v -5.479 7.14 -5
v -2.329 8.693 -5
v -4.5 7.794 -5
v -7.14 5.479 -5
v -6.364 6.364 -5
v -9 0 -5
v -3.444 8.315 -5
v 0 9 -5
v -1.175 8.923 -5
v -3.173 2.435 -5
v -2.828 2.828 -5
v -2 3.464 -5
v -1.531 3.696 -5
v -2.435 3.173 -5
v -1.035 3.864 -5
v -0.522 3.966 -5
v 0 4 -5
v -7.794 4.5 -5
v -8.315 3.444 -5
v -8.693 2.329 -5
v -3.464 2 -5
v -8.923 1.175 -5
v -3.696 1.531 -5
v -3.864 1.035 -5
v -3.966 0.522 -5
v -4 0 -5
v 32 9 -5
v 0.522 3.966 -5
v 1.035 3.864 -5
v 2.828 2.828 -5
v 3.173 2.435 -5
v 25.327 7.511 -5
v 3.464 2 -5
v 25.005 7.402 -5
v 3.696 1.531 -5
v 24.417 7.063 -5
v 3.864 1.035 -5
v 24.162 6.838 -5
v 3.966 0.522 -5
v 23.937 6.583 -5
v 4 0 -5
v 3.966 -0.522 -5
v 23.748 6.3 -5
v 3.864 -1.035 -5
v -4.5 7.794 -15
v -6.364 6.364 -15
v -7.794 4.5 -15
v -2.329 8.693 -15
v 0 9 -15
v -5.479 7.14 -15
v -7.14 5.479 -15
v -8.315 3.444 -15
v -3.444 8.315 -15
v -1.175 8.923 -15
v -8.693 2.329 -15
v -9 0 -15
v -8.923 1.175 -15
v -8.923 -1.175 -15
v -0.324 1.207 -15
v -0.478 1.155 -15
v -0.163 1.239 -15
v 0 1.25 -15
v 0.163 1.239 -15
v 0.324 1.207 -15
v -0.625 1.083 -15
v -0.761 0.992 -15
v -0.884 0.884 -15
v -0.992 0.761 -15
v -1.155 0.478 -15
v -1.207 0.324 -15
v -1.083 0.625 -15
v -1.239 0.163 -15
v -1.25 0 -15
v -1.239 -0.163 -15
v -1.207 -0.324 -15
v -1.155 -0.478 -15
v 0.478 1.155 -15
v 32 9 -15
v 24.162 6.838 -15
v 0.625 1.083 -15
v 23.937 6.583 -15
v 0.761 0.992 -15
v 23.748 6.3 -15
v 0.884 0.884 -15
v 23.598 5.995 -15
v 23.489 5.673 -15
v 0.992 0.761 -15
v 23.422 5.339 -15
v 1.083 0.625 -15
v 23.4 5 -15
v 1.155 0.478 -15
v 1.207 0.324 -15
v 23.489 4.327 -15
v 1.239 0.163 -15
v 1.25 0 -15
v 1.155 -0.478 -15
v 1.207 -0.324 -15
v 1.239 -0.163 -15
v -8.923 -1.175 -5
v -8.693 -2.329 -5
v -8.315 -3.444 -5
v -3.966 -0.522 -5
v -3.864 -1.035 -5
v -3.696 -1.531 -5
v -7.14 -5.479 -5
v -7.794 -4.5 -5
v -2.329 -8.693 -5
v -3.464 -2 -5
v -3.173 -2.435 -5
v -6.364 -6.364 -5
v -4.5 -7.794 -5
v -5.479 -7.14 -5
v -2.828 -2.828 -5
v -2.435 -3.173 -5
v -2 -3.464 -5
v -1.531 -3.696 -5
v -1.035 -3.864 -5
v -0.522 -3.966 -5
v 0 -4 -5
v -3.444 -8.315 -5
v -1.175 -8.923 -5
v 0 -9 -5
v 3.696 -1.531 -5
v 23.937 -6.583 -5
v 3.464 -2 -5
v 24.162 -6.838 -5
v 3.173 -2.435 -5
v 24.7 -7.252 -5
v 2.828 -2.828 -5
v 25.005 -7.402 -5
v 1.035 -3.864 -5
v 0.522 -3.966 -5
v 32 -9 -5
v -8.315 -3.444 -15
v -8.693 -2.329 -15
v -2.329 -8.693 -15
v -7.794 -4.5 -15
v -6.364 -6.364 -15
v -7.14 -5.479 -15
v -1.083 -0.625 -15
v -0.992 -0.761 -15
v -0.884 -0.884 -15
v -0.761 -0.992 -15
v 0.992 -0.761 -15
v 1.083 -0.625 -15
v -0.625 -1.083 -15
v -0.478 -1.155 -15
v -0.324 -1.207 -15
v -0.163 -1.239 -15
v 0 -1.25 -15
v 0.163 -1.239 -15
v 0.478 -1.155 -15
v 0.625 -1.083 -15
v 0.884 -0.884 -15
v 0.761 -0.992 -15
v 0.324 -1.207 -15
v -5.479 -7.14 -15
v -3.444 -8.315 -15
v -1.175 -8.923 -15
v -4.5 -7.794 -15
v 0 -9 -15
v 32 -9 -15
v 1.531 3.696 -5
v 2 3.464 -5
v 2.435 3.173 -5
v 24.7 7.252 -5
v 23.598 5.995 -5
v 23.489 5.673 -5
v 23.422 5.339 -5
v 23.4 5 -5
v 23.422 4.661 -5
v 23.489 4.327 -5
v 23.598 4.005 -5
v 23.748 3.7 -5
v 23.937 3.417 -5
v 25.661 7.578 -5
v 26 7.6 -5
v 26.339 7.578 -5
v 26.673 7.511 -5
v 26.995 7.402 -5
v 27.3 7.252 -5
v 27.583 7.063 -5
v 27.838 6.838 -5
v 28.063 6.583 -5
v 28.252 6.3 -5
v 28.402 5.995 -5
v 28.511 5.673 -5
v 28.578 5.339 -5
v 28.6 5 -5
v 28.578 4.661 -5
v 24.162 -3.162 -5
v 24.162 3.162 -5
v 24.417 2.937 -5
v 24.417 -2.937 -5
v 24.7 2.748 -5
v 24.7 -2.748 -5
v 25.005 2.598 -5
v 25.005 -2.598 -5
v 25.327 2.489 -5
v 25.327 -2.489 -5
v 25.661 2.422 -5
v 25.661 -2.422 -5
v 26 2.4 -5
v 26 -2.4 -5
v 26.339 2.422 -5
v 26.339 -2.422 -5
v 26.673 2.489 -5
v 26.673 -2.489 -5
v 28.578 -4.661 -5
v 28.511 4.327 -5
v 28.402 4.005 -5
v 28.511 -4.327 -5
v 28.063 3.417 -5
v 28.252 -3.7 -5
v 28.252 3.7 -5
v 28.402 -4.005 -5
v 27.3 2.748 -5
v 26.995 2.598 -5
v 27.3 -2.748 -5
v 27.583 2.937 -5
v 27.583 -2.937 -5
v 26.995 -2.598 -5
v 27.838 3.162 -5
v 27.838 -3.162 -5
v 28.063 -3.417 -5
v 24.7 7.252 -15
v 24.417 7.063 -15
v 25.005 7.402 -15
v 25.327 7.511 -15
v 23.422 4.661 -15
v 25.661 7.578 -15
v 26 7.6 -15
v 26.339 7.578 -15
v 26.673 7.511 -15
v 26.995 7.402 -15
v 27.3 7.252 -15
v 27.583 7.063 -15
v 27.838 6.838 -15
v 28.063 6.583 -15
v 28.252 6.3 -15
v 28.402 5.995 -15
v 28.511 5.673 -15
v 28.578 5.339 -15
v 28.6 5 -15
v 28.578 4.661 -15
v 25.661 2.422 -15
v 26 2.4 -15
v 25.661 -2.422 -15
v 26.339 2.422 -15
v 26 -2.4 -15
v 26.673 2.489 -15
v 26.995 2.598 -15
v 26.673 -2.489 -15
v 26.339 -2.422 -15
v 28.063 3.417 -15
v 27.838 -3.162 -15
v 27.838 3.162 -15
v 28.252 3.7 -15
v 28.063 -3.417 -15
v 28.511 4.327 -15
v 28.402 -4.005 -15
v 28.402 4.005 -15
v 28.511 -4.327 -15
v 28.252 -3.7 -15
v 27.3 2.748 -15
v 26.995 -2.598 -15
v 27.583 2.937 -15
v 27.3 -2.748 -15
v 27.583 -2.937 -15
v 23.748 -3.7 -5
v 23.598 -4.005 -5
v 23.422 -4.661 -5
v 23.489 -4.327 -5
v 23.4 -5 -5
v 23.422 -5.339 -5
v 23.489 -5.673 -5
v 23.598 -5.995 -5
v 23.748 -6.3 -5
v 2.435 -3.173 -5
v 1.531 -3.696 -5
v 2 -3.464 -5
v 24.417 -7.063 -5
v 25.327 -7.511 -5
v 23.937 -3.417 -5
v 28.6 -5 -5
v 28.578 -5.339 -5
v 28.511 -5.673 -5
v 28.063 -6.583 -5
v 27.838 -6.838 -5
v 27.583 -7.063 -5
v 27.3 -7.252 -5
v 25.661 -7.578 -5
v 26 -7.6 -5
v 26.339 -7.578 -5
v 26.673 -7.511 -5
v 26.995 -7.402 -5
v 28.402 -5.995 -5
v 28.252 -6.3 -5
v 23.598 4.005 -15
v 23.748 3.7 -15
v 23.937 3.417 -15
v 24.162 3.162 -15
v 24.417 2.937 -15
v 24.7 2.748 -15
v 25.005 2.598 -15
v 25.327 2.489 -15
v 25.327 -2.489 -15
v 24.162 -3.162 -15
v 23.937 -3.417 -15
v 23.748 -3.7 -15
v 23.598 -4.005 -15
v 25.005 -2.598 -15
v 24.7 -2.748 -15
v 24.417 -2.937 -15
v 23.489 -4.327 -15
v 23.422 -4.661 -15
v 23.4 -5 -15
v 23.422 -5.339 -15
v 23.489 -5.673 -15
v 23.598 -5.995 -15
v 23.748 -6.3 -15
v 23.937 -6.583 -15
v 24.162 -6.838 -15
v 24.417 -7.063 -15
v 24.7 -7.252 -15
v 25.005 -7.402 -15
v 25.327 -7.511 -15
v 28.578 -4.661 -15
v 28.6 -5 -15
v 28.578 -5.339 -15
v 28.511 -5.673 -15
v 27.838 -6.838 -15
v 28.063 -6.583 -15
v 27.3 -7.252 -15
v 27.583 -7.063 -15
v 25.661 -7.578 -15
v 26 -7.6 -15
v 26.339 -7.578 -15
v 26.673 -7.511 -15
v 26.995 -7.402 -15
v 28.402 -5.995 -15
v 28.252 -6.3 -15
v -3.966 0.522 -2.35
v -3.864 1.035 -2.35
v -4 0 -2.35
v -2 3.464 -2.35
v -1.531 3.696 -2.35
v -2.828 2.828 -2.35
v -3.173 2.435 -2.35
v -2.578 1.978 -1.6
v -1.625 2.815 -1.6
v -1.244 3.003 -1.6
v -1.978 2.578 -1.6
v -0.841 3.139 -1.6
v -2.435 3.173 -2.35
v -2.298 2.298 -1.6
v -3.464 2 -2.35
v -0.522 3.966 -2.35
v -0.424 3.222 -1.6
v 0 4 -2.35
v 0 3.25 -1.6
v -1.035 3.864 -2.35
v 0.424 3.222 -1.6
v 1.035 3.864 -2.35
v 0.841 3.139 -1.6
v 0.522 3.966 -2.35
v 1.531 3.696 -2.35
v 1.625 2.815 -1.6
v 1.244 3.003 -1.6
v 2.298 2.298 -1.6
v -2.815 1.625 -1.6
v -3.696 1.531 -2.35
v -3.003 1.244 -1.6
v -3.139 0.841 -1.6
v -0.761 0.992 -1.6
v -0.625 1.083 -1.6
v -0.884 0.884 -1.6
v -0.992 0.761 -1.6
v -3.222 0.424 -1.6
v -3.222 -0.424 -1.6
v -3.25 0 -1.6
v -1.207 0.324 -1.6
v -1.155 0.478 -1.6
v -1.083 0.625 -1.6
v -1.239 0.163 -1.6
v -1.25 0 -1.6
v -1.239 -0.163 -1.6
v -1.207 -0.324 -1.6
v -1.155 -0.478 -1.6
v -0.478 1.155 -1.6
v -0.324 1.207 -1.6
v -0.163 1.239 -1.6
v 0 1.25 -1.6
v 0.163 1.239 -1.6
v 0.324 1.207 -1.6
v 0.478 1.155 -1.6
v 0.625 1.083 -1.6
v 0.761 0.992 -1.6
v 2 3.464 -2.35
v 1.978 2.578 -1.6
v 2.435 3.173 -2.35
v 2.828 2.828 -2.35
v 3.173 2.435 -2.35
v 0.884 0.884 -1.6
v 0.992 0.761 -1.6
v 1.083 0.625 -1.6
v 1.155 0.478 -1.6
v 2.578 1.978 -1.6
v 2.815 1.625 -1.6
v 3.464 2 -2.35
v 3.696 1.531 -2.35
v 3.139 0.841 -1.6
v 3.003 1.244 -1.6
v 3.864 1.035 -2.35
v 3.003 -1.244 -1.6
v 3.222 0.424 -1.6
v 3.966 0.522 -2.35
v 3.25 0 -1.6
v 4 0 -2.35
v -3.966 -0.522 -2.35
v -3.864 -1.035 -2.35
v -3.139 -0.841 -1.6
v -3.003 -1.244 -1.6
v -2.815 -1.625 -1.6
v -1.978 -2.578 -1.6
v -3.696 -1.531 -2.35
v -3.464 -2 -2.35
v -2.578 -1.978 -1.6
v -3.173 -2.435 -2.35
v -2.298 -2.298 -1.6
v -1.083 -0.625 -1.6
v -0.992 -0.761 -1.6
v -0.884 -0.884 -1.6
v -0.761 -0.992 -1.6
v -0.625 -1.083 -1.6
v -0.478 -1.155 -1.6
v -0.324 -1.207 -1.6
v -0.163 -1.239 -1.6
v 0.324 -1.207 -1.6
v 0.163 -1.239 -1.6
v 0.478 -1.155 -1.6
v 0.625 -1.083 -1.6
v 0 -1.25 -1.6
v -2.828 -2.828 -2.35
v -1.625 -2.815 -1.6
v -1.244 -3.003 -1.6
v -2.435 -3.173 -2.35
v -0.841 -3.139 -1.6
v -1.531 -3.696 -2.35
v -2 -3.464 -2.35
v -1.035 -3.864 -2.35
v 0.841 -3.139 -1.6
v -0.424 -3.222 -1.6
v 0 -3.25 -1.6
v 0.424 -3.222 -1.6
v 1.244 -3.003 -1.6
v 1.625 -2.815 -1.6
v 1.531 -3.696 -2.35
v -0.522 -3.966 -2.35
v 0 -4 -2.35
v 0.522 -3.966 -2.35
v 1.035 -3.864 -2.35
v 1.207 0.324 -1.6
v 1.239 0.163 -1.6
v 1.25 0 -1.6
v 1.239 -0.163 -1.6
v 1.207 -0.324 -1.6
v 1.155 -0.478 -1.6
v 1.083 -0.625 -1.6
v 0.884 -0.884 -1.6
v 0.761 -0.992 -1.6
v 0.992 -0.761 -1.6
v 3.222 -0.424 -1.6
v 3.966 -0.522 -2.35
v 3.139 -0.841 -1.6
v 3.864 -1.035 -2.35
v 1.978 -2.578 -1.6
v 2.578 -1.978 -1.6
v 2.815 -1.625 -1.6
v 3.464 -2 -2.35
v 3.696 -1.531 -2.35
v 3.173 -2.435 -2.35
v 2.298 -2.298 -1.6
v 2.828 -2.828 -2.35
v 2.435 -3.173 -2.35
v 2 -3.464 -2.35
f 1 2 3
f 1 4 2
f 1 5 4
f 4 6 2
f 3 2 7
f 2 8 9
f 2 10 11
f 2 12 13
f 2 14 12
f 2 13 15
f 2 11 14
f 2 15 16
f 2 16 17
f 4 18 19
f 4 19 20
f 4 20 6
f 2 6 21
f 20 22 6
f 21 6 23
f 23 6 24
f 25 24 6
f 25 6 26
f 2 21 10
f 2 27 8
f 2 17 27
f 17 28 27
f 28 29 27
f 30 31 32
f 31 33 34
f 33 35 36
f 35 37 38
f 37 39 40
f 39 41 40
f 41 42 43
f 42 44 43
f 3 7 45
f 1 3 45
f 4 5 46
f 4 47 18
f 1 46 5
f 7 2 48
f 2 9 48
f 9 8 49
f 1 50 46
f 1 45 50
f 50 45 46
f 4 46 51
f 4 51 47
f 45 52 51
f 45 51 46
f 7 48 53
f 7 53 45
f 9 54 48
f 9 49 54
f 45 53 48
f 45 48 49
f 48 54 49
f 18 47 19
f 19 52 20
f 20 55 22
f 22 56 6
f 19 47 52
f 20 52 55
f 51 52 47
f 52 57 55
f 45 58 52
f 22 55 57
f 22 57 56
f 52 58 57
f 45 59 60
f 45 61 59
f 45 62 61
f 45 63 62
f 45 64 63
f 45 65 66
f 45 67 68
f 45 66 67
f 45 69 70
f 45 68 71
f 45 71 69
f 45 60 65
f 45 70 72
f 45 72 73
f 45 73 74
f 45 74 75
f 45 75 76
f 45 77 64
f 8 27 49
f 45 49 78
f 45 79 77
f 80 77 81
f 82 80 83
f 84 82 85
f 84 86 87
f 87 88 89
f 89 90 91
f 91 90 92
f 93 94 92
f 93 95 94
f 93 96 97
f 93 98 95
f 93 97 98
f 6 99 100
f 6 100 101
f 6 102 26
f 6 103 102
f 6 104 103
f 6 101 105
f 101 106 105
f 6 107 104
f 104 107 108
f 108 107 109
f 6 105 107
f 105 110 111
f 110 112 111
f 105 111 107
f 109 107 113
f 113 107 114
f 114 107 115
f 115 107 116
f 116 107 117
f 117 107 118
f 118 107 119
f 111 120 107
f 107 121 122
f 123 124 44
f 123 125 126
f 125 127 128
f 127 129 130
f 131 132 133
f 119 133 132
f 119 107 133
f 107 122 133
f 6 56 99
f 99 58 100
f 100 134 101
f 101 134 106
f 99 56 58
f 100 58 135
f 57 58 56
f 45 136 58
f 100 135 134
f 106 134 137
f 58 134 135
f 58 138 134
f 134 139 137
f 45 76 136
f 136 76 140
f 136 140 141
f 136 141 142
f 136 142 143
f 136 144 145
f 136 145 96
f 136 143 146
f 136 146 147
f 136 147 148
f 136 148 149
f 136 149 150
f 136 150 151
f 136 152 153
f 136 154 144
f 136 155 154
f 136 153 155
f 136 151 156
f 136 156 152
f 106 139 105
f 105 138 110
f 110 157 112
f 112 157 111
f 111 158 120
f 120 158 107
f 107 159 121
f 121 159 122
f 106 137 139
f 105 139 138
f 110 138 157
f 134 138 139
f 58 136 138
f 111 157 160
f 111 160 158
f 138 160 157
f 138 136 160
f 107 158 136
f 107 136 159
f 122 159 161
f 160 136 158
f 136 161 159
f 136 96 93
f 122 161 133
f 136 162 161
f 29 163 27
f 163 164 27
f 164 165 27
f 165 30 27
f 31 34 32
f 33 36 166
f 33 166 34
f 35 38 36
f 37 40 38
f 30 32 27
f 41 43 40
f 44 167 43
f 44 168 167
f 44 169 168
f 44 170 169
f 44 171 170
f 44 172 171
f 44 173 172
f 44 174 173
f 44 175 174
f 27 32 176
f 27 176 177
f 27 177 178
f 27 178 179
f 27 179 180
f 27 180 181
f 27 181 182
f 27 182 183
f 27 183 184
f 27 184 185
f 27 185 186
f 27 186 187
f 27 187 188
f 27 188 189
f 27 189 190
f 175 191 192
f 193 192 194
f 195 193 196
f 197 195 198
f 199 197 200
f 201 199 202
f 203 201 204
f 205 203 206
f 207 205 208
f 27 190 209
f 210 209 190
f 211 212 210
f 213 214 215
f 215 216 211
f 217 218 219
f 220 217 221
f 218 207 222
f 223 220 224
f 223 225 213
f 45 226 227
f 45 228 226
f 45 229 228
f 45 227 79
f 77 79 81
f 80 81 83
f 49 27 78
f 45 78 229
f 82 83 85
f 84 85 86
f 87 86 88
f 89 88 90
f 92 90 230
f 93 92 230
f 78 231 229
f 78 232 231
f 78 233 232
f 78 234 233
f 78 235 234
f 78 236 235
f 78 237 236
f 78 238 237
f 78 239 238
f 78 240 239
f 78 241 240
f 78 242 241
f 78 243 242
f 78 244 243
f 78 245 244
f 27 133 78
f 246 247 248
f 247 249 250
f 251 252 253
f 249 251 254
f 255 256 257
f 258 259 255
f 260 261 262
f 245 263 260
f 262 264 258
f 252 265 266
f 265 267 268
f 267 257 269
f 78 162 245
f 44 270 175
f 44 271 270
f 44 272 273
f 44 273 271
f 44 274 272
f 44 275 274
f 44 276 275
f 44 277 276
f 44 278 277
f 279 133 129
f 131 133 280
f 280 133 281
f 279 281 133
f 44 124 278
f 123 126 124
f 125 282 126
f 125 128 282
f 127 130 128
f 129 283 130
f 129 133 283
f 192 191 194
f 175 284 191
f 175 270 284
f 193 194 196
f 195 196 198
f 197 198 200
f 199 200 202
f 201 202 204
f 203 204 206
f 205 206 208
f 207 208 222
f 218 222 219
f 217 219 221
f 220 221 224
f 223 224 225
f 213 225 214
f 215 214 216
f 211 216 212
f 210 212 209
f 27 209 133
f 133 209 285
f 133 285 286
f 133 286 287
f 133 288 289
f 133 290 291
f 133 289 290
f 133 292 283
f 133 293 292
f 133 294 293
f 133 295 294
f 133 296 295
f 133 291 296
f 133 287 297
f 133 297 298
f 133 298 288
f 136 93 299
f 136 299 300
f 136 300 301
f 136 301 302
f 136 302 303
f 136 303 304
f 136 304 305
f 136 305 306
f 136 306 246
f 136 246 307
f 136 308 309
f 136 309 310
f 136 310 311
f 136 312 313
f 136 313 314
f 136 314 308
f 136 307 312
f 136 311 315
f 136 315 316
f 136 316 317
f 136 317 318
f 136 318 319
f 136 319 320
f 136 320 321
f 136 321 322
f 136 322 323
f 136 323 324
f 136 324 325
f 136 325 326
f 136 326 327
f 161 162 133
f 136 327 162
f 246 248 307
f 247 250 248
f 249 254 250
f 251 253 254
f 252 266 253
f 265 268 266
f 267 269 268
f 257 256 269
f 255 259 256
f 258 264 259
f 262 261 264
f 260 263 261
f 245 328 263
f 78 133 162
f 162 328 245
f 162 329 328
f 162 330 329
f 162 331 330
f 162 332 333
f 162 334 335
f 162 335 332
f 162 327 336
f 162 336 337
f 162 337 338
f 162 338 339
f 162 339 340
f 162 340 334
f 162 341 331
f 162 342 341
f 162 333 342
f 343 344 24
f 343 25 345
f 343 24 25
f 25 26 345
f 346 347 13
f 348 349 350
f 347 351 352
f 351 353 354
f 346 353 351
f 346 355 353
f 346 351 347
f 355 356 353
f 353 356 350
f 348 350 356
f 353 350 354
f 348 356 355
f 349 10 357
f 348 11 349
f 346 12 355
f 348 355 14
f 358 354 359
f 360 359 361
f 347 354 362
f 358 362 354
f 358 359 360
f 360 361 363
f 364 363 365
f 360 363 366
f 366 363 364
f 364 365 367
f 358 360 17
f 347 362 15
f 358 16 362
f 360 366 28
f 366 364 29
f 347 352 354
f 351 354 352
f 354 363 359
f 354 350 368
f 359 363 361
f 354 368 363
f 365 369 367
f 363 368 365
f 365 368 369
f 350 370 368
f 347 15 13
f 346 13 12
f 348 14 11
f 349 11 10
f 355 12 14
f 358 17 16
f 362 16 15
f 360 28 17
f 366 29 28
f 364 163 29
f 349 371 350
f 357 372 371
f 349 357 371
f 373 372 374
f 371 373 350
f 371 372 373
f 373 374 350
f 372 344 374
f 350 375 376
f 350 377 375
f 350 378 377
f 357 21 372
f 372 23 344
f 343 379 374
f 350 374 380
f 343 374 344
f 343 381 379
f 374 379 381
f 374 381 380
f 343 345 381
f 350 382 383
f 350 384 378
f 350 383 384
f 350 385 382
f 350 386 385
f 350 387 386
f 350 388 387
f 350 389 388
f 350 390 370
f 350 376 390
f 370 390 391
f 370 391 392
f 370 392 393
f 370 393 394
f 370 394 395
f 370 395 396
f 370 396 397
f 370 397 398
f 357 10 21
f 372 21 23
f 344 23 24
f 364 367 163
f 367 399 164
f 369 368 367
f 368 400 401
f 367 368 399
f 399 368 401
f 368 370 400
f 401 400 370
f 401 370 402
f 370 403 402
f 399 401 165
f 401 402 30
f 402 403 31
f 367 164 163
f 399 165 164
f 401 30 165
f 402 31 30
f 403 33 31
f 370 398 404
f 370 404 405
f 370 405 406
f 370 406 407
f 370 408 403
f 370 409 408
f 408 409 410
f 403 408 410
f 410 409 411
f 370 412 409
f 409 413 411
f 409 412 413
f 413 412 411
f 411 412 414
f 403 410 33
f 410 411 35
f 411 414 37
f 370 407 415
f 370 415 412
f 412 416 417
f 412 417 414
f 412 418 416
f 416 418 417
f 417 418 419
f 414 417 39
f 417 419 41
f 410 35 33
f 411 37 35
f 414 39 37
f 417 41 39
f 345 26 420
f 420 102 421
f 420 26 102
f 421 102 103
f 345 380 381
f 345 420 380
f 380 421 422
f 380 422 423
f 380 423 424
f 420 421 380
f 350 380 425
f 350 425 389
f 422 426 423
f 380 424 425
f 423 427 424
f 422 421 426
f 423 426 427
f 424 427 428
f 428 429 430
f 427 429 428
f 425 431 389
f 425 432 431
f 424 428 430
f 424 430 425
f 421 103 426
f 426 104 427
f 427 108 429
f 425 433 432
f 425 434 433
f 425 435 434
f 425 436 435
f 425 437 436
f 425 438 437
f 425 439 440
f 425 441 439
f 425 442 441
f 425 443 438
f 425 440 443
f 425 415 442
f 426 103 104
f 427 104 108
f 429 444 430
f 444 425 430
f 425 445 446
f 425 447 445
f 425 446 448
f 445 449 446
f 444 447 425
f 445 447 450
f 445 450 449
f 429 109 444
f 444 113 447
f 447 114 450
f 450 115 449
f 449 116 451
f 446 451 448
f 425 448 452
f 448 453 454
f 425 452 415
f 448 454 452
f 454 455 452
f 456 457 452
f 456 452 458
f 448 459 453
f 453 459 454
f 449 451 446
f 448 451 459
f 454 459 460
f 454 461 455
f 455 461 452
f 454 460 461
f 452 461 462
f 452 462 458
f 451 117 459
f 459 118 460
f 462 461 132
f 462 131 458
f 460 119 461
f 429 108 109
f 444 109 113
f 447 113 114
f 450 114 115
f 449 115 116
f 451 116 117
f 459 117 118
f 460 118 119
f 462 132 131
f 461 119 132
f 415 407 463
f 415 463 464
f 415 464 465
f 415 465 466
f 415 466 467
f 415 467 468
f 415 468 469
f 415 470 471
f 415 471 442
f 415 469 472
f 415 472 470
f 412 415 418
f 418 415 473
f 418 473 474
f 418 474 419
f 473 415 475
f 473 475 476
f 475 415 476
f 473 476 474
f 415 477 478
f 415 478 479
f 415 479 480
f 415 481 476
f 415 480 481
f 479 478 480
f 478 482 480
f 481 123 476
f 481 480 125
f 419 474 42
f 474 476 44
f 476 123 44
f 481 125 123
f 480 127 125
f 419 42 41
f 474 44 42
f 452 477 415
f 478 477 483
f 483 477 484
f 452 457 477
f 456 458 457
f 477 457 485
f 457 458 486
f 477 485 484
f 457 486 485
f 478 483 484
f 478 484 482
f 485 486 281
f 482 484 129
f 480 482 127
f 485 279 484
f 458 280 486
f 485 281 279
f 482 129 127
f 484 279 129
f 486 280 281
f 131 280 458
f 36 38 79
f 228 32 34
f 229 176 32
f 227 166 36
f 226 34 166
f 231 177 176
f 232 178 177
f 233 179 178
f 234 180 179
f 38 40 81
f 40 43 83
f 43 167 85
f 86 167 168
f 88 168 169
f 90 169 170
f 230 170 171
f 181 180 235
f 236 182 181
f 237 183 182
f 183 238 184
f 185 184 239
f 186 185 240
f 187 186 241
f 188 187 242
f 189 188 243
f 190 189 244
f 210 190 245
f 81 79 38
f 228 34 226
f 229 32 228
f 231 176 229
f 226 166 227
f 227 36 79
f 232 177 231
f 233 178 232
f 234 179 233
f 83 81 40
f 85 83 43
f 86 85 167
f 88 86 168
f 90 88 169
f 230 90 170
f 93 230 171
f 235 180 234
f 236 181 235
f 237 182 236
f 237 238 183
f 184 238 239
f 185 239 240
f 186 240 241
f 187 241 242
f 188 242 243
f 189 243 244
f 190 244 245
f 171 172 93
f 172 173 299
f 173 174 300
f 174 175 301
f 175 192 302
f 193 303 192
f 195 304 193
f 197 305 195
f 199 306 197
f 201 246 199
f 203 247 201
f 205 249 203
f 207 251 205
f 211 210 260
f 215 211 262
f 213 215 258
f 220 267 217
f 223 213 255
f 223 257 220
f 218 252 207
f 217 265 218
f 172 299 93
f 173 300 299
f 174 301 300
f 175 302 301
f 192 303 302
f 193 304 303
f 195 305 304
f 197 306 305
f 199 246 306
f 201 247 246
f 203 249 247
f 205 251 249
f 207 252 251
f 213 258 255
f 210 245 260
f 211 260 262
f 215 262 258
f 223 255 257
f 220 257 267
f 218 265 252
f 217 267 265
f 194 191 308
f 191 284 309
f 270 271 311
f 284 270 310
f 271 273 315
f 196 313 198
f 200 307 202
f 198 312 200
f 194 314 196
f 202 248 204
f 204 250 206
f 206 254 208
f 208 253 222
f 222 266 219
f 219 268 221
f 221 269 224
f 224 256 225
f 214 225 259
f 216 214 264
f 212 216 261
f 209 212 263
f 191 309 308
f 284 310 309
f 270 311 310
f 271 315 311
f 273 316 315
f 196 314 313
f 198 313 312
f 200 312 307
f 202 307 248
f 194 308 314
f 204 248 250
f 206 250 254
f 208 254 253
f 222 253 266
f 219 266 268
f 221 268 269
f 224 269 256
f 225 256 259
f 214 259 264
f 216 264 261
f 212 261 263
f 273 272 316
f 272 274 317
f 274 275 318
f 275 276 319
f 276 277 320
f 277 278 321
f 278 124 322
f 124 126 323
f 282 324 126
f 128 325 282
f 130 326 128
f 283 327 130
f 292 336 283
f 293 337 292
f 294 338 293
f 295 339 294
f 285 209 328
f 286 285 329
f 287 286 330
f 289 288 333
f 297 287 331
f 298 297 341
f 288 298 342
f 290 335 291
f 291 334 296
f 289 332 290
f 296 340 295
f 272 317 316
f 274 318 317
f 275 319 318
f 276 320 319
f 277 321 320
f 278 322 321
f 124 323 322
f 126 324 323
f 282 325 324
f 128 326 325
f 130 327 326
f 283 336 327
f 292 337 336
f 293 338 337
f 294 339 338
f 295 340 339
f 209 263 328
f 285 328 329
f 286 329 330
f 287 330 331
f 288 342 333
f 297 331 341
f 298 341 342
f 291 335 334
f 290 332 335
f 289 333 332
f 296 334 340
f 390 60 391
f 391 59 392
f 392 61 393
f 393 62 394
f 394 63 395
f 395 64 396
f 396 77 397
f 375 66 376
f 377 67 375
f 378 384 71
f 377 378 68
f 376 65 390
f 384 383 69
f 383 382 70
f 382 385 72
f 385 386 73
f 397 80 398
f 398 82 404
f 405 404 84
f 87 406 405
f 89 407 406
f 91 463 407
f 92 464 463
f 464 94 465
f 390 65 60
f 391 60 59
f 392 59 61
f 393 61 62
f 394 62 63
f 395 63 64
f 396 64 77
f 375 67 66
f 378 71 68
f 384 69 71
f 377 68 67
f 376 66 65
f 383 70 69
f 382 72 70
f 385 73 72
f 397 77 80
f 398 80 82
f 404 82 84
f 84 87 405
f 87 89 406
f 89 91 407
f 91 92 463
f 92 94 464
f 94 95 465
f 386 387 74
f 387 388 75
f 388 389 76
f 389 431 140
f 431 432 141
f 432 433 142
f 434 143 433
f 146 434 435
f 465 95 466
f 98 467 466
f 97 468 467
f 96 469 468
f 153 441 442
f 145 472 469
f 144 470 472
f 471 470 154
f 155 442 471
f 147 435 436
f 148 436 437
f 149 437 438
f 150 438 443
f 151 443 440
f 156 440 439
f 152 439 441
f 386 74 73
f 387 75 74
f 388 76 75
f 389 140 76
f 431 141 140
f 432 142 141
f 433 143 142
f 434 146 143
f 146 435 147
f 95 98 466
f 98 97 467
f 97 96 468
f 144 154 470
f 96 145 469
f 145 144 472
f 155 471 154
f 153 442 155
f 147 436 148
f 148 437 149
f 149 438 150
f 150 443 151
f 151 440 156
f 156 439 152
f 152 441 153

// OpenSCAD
// Die arm for an M3 set-screw die (1.5 mm socket). Tap M3 through.
include <../cad/punch_rig_v3_005.scad>
PART = "arm_print";
